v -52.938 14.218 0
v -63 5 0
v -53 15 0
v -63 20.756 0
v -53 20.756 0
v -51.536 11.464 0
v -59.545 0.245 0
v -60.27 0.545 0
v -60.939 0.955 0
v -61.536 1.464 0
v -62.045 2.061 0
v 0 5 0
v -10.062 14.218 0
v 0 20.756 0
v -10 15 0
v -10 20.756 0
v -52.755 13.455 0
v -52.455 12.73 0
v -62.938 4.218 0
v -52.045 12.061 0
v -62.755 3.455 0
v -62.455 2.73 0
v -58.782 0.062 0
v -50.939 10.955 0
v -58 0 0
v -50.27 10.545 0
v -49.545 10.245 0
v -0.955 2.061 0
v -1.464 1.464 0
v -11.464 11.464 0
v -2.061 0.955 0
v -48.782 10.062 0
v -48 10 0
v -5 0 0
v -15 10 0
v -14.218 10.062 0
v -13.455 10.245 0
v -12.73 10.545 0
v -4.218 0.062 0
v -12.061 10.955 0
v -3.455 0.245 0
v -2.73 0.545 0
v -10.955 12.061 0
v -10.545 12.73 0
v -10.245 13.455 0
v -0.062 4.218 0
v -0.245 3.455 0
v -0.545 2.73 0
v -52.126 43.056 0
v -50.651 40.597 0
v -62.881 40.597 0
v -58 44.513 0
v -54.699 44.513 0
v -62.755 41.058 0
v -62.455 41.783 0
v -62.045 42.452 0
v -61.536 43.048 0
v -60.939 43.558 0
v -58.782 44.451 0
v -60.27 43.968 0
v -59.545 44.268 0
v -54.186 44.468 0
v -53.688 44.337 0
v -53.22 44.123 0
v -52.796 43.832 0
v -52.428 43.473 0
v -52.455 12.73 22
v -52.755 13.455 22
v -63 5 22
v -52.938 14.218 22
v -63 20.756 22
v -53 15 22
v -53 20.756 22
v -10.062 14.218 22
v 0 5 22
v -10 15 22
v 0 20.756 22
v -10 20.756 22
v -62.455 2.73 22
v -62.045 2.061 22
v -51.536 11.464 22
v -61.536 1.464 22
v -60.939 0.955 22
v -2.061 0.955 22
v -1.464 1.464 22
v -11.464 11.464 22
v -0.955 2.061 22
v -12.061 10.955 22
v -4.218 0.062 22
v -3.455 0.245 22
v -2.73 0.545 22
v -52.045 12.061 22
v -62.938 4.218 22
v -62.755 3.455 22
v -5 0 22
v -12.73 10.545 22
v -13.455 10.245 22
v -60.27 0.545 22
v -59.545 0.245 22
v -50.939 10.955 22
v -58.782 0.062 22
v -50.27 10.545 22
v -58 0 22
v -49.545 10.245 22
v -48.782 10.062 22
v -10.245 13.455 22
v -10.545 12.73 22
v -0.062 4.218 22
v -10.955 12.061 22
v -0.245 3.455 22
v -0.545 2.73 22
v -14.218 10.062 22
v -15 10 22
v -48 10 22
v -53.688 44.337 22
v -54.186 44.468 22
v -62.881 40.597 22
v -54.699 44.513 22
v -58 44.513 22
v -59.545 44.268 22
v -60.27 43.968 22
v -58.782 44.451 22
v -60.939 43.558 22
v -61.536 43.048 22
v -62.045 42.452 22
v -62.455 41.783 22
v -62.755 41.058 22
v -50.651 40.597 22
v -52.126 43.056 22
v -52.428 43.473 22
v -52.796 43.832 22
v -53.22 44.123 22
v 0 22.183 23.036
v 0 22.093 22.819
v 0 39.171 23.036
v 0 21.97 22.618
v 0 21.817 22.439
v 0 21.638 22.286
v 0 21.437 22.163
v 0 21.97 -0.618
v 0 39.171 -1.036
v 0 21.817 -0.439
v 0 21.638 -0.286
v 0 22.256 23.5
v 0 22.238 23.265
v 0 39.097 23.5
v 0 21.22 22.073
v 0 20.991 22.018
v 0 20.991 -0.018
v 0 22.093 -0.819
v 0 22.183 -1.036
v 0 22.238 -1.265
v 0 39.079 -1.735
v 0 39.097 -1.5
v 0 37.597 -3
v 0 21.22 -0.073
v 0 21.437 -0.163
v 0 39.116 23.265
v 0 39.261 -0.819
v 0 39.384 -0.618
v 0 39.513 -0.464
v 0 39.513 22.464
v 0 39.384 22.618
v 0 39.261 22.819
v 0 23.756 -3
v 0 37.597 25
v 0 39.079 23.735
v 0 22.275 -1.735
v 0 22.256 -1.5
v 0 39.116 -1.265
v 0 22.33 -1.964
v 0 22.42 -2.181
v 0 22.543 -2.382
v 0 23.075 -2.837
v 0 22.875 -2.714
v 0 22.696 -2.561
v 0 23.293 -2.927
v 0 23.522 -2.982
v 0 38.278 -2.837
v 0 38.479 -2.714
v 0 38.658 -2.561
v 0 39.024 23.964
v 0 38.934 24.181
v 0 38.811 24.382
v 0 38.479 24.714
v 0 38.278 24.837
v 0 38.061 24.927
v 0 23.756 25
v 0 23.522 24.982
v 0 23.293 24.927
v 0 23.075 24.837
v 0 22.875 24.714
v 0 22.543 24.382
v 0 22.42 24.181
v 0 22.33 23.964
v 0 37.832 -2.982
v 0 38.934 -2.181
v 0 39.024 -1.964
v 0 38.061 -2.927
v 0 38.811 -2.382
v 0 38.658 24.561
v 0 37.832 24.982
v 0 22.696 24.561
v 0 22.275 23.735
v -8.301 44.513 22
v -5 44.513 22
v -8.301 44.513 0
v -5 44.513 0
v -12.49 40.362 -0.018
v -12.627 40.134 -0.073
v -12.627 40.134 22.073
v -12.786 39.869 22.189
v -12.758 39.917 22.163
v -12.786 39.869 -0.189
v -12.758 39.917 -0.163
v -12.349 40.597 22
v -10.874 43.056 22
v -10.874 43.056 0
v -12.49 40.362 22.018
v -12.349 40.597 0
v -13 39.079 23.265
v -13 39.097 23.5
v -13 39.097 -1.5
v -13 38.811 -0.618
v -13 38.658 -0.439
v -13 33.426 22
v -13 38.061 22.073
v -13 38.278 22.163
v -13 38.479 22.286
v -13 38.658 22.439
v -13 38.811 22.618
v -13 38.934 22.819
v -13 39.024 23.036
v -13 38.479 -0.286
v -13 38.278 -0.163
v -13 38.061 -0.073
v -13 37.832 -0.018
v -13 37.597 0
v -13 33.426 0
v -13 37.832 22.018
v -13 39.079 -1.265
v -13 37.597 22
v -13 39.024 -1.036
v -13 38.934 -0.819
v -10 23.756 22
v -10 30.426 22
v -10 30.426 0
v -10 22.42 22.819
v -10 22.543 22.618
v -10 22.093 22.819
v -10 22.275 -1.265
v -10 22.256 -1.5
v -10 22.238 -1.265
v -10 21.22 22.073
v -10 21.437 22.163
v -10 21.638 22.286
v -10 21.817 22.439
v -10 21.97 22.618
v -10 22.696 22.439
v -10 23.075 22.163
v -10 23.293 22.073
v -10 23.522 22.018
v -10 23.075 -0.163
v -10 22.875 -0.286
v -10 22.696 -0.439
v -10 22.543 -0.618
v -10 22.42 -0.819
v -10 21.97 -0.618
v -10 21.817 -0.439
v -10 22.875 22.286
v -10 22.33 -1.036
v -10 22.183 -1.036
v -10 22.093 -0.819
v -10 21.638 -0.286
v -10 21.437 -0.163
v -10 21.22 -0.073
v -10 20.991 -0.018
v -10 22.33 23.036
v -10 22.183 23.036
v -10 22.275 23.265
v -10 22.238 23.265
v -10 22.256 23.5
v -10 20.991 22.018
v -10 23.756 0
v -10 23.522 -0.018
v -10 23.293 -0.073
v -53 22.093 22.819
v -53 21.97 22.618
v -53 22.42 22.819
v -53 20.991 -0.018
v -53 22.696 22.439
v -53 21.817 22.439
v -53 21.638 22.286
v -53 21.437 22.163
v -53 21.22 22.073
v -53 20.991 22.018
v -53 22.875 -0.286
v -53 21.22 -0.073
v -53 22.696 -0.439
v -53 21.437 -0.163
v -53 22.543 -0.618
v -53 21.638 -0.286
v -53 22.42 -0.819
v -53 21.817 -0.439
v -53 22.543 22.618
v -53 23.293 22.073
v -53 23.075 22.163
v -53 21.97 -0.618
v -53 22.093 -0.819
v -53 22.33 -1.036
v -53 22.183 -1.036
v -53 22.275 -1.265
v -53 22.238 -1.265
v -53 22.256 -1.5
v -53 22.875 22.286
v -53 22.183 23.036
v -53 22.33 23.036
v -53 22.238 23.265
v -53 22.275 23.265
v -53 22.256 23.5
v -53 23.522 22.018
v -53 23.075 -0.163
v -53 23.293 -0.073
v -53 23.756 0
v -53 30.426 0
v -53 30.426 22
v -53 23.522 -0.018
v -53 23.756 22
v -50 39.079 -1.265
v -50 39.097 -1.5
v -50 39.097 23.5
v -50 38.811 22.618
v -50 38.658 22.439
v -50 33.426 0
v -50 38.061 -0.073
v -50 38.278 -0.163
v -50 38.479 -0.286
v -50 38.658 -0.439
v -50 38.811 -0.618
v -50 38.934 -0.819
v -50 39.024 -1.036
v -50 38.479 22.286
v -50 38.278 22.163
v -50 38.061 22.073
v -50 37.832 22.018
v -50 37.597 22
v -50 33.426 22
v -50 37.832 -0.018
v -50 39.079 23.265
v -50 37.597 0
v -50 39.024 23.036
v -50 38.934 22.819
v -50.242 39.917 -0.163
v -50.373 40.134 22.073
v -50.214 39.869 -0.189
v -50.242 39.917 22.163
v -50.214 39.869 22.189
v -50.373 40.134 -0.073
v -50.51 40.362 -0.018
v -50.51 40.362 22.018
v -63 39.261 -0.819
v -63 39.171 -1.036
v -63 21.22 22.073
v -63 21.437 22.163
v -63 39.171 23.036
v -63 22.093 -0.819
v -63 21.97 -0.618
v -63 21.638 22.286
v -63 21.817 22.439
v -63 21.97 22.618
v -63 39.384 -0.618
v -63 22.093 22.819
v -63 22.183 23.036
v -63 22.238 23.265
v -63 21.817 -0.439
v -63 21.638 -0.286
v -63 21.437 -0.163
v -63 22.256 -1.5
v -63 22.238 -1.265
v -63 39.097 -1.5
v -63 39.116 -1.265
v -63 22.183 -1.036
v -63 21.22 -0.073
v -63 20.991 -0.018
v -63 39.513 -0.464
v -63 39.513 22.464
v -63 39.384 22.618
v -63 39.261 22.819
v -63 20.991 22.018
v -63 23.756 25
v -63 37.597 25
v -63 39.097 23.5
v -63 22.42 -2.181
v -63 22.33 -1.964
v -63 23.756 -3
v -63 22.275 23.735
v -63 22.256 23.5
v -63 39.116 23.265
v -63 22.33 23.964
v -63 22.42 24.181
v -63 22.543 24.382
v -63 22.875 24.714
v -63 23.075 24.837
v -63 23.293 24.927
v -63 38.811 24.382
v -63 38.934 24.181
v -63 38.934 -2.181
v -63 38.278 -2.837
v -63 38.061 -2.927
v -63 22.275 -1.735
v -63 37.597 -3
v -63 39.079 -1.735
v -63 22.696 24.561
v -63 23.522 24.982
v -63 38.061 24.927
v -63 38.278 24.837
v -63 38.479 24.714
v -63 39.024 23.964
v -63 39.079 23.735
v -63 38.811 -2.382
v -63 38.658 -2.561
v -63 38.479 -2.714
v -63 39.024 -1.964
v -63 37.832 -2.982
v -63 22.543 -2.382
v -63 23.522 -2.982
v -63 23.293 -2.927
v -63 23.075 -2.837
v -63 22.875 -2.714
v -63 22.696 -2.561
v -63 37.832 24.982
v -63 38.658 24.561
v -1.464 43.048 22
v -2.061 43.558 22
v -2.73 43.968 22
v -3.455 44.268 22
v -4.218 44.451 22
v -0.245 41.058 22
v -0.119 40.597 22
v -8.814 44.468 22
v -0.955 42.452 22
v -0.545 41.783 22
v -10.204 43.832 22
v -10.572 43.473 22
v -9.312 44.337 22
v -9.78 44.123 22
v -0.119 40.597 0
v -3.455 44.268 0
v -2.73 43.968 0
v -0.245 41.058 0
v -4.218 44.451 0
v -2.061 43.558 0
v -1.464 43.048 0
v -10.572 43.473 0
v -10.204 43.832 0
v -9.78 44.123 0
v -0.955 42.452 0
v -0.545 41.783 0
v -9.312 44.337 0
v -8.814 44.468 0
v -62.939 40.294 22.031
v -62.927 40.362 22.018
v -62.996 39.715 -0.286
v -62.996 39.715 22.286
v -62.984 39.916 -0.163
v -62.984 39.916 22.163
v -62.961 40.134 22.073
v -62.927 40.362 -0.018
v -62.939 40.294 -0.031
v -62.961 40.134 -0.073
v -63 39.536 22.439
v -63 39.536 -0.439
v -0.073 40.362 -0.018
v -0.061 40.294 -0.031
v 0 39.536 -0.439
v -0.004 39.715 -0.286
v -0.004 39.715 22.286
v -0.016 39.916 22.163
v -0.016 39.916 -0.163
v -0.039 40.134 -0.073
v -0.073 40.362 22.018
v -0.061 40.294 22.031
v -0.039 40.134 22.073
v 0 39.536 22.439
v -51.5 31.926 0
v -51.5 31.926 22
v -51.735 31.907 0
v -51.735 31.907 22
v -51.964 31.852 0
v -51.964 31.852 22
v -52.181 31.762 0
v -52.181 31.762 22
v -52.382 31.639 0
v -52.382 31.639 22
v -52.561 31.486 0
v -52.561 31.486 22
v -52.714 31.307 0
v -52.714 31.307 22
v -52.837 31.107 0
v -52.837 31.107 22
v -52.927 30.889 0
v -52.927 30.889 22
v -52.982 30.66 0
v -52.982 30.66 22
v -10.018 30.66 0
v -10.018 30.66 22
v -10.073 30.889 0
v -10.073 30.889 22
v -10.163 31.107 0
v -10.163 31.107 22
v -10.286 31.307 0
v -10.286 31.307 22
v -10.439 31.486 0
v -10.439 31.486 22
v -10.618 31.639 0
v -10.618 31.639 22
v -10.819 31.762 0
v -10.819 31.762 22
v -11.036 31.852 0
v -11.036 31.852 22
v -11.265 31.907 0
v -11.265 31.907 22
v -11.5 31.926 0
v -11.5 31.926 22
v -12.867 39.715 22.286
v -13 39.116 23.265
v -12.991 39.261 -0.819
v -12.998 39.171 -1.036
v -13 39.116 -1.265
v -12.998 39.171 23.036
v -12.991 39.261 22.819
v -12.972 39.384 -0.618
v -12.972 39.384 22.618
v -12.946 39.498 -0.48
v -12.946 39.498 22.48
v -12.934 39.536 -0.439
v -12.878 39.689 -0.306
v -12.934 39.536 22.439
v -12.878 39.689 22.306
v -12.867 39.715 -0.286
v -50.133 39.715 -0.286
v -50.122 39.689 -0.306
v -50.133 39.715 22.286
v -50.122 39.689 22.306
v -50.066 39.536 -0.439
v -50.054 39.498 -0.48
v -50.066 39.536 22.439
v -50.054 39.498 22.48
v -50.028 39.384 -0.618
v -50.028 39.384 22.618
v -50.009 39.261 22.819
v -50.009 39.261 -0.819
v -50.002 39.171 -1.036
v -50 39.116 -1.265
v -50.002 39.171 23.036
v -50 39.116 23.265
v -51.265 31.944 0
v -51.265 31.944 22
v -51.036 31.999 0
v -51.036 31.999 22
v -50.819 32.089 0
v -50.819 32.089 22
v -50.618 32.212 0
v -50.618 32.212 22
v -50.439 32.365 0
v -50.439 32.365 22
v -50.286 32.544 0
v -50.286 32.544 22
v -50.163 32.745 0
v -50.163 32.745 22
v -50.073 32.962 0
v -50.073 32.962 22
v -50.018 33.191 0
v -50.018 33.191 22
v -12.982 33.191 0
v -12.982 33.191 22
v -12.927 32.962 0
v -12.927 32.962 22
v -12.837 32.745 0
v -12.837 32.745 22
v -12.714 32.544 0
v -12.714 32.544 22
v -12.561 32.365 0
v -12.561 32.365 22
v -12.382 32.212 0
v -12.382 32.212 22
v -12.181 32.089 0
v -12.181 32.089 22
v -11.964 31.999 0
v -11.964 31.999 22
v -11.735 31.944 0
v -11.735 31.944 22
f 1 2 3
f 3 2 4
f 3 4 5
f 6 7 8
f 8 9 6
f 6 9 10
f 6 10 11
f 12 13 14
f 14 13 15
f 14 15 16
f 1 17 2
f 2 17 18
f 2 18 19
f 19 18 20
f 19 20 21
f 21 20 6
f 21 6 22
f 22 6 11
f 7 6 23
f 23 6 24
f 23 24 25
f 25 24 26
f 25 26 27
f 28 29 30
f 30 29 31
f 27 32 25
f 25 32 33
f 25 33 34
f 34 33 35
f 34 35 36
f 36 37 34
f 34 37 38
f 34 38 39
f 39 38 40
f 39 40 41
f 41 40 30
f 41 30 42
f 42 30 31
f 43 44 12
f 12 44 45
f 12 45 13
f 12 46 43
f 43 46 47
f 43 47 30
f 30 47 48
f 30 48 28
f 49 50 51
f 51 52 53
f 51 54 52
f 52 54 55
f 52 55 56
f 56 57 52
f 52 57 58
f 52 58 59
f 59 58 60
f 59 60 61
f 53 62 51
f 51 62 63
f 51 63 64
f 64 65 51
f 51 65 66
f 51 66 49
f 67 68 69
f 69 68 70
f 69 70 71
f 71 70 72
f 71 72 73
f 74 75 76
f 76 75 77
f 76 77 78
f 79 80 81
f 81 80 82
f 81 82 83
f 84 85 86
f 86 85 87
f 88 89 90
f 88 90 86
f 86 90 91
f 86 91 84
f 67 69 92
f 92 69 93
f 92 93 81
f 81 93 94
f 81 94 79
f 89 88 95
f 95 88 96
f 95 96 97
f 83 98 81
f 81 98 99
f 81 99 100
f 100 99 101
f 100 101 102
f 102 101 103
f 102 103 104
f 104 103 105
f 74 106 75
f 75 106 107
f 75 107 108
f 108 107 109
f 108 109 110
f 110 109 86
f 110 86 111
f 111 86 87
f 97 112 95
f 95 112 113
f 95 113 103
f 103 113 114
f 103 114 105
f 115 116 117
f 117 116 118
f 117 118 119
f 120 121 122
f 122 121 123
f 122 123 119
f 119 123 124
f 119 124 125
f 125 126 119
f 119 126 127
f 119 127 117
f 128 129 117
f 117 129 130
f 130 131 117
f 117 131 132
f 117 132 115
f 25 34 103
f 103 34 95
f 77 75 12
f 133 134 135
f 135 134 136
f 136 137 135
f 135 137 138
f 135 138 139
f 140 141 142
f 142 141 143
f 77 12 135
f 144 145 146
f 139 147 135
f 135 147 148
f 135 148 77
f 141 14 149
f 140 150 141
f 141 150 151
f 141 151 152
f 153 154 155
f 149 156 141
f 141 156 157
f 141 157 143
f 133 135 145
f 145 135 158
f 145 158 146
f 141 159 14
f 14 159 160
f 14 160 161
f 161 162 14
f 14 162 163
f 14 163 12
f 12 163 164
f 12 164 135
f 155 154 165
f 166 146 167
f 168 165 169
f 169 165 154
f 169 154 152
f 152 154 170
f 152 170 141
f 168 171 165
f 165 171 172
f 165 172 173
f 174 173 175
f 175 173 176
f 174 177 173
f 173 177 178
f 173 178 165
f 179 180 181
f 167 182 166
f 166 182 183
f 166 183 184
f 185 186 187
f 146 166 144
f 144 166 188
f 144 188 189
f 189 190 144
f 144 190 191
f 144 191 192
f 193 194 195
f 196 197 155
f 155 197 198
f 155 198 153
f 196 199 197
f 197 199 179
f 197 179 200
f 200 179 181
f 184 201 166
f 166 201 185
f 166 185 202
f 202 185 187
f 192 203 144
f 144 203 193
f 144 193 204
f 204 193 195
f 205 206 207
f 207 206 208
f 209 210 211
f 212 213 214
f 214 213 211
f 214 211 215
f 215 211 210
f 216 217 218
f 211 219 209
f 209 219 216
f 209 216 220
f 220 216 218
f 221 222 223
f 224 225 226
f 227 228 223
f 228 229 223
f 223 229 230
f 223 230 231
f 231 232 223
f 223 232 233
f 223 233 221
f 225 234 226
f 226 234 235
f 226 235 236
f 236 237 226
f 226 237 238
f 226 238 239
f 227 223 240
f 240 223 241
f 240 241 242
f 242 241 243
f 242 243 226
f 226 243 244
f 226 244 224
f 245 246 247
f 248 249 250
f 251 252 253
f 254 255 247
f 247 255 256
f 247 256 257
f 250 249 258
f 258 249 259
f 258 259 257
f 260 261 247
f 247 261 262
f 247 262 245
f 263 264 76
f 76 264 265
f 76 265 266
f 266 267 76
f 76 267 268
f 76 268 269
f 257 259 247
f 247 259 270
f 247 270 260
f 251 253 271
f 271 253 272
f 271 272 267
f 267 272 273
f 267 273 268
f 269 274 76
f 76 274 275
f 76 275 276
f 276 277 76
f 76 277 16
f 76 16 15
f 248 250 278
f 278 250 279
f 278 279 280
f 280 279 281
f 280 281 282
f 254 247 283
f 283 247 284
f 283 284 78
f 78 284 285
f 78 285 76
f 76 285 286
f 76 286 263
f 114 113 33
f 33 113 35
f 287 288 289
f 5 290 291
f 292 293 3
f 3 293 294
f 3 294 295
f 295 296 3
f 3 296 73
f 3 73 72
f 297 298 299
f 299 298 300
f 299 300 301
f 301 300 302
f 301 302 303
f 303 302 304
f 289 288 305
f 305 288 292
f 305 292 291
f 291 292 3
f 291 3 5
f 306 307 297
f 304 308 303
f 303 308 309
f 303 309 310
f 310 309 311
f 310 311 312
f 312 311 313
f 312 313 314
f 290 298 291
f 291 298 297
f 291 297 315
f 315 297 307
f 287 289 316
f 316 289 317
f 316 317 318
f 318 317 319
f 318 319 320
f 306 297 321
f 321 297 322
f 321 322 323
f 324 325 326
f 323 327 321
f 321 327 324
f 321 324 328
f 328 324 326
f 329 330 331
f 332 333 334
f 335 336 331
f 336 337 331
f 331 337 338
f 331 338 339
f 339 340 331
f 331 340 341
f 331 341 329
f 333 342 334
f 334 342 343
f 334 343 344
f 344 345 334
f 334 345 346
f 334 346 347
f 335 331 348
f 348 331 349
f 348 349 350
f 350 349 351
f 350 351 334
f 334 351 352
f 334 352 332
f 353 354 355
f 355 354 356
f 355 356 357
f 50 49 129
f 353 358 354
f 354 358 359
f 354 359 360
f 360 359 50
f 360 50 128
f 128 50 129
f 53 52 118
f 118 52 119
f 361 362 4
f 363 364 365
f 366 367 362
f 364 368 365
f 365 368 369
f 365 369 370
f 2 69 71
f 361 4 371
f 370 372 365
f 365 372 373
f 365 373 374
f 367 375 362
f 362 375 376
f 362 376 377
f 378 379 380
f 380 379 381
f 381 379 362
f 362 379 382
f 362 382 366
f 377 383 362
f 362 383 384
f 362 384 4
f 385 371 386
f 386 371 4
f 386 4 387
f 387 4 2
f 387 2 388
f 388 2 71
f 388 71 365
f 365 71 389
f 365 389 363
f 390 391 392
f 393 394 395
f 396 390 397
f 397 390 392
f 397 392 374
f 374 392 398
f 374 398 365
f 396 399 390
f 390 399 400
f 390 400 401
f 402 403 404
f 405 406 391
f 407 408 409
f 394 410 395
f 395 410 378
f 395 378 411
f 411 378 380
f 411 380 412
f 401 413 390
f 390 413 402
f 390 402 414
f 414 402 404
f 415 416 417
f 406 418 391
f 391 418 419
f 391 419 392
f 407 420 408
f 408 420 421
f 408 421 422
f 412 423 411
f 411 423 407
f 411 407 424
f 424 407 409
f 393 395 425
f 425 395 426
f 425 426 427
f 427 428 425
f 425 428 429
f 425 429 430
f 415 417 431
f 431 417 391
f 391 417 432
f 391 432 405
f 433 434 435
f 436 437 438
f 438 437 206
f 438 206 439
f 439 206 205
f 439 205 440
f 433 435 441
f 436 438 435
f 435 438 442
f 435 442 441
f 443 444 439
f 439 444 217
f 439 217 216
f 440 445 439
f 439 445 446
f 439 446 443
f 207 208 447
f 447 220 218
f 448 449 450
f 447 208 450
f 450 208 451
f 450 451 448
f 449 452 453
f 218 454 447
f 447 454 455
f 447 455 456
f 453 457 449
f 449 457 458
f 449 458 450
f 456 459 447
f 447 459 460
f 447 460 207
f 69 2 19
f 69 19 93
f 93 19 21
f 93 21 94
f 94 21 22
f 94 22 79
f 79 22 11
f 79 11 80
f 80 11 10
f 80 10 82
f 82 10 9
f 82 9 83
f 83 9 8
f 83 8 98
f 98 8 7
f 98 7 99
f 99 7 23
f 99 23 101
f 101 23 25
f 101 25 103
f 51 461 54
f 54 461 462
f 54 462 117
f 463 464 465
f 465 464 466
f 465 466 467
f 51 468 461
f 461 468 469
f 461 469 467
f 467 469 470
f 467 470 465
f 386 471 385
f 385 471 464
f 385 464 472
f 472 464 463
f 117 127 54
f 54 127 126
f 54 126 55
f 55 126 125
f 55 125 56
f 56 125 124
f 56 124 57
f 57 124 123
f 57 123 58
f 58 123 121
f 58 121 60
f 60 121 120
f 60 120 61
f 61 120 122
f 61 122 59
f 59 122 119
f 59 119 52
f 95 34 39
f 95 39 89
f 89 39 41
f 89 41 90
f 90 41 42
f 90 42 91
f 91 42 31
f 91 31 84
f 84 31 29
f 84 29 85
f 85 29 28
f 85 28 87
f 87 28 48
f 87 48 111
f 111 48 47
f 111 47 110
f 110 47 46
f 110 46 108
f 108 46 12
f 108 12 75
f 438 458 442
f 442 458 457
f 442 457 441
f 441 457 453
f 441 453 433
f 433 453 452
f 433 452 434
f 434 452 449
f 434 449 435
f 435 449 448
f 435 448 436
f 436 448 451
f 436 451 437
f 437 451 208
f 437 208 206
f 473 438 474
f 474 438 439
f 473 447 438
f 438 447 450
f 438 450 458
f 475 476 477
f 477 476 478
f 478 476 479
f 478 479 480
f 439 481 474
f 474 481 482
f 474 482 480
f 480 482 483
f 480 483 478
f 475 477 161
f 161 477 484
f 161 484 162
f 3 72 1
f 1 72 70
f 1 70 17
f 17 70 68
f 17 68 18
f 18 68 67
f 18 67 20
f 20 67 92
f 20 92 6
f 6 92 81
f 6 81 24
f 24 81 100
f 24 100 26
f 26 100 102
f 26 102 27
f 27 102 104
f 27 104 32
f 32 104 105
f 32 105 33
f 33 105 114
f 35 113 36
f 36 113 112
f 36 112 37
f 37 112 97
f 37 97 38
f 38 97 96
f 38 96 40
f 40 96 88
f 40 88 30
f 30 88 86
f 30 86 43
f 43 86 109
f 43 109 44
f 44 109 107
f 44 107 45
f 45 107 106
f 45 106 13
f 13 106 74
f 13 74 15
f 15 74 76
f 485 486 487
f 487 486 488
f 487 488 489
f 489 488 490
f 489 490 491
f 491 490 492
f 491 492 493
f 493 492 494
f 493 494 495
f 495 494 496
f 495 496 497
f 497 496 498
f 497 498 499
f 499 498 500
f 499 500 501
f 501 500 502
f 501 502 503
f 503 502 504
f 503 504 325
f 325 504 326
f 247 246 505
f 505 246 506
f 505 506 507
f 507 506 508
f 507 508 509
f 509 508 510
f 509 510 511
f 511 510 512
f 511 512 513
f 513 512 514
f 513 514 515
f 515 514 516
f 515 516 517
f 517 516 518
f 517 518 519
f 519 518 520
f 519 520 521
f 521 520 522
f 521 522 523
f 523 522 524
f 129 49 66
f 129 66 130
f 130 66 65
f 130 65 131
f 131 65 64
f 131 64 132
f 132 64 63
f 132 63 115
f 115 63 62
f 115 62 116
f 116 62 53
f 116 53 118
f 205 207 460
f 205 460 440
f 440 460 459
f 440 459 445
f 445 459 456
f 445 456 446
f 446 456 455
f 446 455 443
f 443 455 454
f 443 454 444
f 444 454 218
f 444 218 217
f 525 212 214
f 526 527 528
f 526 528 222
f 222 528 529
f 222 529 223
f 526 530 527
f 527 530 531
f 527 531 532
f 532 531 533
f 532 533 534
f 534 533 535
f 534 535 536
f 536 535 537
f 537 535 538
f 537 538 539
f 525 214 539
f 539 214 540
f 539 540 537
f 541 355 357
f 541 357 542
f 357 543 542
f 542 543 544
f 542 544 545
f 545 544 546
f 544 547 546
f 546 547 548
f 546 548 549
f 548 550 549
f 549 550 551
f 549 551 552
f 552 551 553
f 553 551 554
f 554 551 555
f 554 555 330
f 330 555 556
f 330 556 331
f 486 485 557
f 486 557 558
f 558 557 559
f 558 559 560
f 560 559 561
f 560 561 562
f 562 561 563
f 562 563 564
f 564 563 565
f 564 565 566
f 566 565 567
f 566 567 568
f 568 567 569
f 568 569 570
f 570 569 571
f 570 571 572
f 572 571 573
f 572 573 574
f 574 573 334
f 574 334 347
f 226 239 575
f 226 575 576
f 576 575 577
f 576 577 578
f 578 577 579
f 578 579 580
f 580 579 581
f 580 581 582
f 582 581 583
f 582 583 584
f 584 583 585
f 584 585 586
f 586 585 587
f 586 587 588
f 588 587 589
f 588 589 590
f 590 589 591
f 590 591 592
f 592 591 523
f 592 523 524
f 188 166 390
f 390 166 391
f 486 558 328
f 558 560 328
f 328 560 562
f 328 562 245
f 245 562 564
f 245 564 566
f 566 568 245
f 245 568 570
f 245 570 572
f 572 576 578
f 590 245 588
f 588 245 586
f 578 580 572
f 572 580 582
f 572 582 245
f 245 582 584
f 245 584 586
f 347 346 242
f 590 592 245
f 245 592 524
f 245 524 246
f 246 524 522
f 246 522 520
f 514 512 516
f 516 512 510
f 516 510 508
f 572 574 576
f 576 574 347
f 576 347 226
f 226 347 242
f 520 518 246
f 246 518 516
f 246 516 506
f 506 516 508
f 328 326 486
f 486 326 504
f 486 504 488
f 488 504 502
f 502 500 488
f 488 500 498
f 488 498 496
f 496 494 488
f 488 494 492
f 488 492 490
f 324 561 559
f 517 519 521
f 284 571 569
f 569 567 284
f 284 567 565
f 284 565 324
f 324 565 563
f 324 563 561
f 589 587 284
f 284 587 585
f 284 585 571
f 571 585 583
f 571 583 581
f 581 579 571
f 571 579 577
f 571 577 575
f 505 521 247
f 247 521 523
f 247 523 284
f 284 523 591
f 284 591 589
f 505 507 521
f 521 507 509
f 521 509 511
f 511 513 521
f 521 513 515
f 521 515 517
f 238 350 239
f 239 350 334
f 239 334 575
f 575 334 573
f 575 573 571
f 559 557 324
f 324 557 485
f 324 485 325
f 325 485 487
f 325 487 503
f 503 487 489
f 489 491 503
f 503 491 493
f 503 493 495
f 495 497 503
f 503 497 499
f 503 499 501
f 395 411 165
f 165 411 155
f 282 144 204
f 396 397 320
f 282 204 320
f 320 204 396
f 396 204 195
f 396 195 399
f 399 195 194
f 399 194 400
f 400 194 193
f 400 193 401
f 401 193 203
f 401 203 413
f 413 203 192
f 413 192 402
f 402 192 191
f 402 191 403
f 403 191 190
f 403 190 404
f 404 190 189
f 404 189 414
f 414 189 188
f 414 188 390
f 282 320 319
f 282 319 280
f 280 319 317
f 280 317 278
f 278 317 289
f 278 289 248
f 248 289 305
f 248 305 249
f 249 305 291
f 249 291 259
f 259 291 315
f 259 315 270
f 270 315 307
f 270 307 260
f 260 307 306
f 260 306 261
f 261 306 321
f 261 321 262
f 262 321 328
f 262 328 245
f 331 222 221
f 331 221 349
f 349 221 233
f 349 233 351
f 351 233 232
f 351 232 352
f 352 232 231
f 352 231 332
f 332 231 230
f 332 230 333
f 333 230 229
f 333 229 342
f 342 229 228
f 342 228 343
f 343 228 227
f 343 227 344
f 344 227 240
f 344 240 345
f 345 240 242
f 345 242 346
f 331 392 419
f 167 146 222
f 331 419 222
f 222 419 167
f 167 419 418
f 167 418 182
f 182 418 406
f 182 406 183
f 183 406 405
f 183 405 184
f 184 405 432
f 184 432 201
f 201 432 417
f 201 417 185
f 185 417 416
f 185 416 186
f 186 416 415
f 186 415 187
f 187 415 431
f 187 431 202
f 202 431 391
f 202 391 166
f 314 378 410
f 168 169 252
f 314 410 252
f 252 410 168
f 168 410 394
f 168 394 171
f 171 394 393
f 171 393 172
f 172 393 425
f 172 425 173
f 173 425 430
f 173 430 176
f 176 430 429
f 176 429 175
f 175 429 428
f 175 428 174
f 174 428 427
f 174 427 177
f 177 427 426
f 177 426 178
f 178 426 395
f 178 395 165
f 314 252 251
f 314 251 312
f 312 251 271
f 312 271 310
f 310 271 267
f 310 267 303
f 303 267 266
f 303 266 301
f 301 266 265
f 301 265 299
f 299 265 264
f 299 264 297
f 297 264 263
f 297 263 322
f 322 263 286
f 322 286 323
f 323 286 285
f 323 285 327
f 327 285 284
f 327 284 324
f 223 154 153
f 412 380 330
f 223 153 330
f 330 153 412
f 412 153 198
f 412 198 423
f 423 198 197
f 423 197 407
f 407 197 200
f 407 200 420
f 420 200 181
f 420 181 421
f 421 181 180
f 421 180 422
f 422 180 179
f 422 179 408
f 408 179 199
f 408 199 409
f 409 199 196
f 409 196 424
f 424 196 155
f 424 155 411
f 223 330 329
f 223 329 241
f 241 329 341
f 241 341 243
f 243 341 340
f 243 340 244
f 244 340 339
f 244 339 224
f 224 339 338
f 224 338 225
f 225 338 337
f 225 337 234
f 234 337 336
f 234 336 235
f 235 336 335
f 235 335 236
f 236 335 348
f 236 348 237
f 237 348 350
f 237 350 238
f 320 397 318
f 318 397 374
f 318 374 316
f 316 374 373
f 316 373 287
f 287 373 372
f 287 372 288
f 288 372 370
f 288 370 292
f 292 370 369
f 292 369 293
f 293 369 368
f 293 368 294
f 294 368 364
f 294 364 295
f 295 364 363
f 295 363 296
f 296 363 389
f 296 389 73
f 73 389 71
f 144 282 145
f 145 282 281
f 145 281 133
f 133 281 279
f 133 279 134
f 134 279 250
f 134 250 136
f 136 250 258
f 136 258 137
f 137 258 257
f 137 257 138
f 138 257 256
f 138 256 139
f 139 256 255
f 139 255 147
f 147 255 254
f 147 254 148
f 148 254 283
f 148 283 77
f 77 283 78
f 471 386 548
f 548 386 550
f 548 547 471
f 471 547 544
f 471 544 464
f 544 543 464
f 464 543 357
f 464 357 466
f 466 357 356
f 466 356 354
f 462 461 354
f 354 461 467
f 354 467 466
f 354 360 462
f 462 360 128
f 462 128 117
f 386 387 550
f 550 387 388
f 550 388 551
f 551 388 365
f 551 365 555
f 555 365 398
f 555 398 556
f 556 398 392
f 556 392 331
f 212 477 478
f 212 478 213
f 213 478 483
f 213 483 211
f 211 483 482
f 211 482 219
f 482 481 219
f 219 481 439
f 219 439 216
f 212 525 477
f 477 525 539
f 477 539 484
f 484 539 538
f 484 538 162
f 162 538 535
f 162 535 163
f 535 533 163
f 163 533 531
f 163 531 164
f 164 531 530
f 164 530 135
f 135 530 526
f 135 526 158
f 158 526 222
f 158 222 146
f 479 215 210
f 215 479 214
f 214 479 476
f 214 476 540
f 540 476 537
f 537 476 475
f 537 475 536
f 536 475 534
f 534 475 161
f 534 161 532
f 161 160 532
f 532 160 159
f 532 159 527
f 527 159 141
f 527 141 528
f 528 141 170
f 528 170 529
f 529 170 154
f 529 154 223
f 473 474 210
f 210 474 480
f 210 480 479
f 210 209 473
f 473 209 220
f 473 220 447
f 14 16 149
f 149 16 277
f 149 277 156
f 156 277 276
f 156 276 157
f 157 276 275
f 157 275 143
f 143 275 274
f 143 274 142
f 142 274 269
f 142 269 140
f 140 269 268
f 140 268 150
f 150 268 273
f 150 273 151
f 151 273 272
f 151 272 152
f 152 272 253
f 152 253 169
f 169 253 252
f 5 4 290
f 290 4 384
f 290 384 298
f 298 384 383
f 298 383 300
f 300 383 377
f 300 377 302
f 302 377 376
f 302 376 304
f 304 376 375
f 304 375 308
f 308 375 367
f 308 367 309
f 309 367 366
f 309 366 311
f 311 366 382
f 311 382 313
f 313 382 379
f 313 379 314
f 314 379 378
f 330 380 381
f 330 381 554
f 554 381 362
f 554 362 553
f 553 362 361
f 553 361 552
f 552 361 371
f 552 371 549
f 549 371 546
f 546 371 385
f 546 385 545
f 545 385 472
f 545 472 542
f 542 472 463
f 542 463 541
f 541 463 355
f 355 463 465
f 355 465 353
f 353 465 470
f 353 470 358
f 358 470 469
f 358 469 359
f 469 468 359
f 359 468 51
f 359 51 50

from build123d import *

# Parameters (mm, degrees)
BOSS_EXTRUDE1_DEPTH = 22
FILLET2_R           = 5
FILLET4_R           = 5
FILLET5_R           = 1.5
FILLET6_R           = 3
FILLET7_R           = 1.5
SKETCH5_W           = 63
SKETCH5_H           = 16.840827273
BOSS_EXTRUDE2_DEPTH = 3
SKETCH6_W           = 63
SKETCH6_H           = 16.840827273
BOSS_EXTRUDE3_DEPTH = 3
FILLET8_R           = 1.5
FILLET9_R           = 1.5


with BuildPart() as part:
    # Sketch1 → Boss-Extrude1 (new body)
    with BuildSketch(Plane(origin=(0, 0, 0), x_dir=(0, 1, 0), z_dir=(0, 0, 1))):
        Polygon((0, 0), (44.512606441, 0), (44.512606441, 10), (39.512606441, 13), (31.925649919, 13), (31.925649919, 10), (10, 10), (10, 53), (31.925649919, 53), (31.925649919, 50), (39.512606441, 50), (44.512606441, 53), (44.512606441, 63), (0, 63), align=None)
    extrude(amount=BOSS_EXTRUDE1_DEPTH)

    # Fillet2
    fillet2_edges = [part.edges().sort_by_distance(p)[0] for p in [
        (-63, 0, 11),
        (-63, 44.512606441, 11),
        (0, 44.512606441, 11),
        (0, 0, 11),
    ]]
    fillet(fillet2_edges, radius=FILLET2_R)

    # Fillet4
    fillet4_edges = [part.edges().sort_by_distance(p)[0] for p in [
        (-53, 10, 11),
        (-10, 10, 11),
    ]]
    fillet(fillet4_edges, radius=FILLET4_R)

    # Fillet5
    fillet5_edges = [part.edges().sort_by_distance(p)[0] for p in [
        (-53, 31.925649919, 11),
        (-10, 31.925649919, 11),
    ]]
    fillet(fillet5_edges, radius=FILLET5_R)

    # Fillet6
    fillet6_edges = [part.edges().sort_by_distance(p)[0] for p in [
        (-53, 44.512606441, 11),
        (-10, 44.512606441, 11),
    ]]
    fillet(fillet6_edges, radius=FILLET6_R)

    # Fillet7
    fillet7_edges = [part.edges().sort_by_distance(p)[0] for p in [
        (-13, 39.512606441, 11),
        (-50, 39.512606441, 11),
        (-50, 31.925649919, 11),
        (-13, 31.925649919, 11),
    ]]
    fillet(fillet7_edges, radius=FILLET7_R - 0.0001)  # a hair under: the kernel refuses the full size

    # Sketch5 → Boss-Extrude2 (add)
    with BuildSketch(Plane.XY.offset(22)):
        with Locations((-31.5, 30.676716857)):
            Rectangle(SKETCH5_W, SKETCH5_H)
    extrude(amount=BOSS_EXTRUDE2_DEPTH)

    # Sketch6 → Boss-Extrude3 (add)
    with BuildSketch(Plane(origin=(0, 0, 0), x_dir=(1, 0, 0), z_dir=(0, 0, -1))):
        with Locations((-31.5, -30.676716857)):
            Rectangle(SKETCH6_W, SKETCH6_H)
    extrude(amount=BOSS_EXTRUDE3_DEPTH)

    # Fillet8
    fillet8_edges = [part.edges().sort_by_distance(p)[0] for p in [
        (-31.5, 22.25630322, 22),
        (-31.5, 39.097130493, 25),
        (-31.5, 22.25630322, 25),
        (-31.5, 39.097130493, 22),
        (-31.5, 39.097130493, 0),
        (-31.5, 22.25630322, 0),
        (-31.5, 39.097130493, -3),
        (-31.5, 22.25630322, -3),
    ]]
    fillet(fillet8_edges, radius=FILLET8_R - 0.0001)  # a hair under: the kernel refuses the full size

    # Fillet9
    fillet9_edges = [part.edges().sort_by_distance(p)[0] for p in [
        (-5, 22.25630322, 22),
    ]]
    fillet(fillet9_edges, radius=FILLET9_R - 0.0001)  # a hair under: the kernel refuses the full size
    fillet9_2_edges = [part.edges().sort_by_distance(p)[0] for p in [
        (-58, 22.25630322, 22),
    ]]
    fillet(fillet9_2_edges, radius=FILLET9_R - 0.0001)  # a hair under: the kernel refuses the full size
    fillet9_3_edges = [part.edges().sort_by_distance(p)[0] for p in [
        (-58, 22.25630322, 0),
    ]]
    fillet(fillet9_3_edges, radius=FILLET9_R - 0.0001)  # a hair under: the kernel refuses the full size
    fillet9_4_edges = [part.edges().sort_by_distance(p)[0] for p in [
        (-5, 22.25630322, 0),
    ]]
    fillet(fillet9_4_edges, radius=FILLET9_R - 0.0001)  # a hair under: the kernel refuses the full size
    fillet9_5_edges = [part.edges().sort_by_distance(p)[0] for p in [
        (-56.5, 39.097130493, 22),
    ]]
    fillet(fillet9_5_edges, radius=FILLET9_R - 0.0001)  # a hair under: the kernel refuses the full size
    fillet9_6_edges = [part.edges().sort_by_distance(p)[0] for p in [
        (-6.5, 39.097130493, 22),
    ]]
    fillet(fillet9_6_edges, radius=FILLET9_R - 0.0001)  # a hair under: the kernel refuses the full size
    fillet9_7_edges = [part.edges().sort_by_distance(p)[0] for p in [
        (-6.5, 39.097130493, 0),
    ]]
    fillet(fillet9_7_edges, radius=FILLET9_R - 0.0001)  # a hair under: the kernel refuses the full size
    fillet9_8_edges = [part.edges().sort_by_distance(p)[0] for p in [
        (-56.5, 39.097130493, 0),
    ]]
    fillet(fillet9_8_edges, radius=FILLET9_R - 0.0001)  # a hair under: the kernel refuses the full size


solid = part.part
